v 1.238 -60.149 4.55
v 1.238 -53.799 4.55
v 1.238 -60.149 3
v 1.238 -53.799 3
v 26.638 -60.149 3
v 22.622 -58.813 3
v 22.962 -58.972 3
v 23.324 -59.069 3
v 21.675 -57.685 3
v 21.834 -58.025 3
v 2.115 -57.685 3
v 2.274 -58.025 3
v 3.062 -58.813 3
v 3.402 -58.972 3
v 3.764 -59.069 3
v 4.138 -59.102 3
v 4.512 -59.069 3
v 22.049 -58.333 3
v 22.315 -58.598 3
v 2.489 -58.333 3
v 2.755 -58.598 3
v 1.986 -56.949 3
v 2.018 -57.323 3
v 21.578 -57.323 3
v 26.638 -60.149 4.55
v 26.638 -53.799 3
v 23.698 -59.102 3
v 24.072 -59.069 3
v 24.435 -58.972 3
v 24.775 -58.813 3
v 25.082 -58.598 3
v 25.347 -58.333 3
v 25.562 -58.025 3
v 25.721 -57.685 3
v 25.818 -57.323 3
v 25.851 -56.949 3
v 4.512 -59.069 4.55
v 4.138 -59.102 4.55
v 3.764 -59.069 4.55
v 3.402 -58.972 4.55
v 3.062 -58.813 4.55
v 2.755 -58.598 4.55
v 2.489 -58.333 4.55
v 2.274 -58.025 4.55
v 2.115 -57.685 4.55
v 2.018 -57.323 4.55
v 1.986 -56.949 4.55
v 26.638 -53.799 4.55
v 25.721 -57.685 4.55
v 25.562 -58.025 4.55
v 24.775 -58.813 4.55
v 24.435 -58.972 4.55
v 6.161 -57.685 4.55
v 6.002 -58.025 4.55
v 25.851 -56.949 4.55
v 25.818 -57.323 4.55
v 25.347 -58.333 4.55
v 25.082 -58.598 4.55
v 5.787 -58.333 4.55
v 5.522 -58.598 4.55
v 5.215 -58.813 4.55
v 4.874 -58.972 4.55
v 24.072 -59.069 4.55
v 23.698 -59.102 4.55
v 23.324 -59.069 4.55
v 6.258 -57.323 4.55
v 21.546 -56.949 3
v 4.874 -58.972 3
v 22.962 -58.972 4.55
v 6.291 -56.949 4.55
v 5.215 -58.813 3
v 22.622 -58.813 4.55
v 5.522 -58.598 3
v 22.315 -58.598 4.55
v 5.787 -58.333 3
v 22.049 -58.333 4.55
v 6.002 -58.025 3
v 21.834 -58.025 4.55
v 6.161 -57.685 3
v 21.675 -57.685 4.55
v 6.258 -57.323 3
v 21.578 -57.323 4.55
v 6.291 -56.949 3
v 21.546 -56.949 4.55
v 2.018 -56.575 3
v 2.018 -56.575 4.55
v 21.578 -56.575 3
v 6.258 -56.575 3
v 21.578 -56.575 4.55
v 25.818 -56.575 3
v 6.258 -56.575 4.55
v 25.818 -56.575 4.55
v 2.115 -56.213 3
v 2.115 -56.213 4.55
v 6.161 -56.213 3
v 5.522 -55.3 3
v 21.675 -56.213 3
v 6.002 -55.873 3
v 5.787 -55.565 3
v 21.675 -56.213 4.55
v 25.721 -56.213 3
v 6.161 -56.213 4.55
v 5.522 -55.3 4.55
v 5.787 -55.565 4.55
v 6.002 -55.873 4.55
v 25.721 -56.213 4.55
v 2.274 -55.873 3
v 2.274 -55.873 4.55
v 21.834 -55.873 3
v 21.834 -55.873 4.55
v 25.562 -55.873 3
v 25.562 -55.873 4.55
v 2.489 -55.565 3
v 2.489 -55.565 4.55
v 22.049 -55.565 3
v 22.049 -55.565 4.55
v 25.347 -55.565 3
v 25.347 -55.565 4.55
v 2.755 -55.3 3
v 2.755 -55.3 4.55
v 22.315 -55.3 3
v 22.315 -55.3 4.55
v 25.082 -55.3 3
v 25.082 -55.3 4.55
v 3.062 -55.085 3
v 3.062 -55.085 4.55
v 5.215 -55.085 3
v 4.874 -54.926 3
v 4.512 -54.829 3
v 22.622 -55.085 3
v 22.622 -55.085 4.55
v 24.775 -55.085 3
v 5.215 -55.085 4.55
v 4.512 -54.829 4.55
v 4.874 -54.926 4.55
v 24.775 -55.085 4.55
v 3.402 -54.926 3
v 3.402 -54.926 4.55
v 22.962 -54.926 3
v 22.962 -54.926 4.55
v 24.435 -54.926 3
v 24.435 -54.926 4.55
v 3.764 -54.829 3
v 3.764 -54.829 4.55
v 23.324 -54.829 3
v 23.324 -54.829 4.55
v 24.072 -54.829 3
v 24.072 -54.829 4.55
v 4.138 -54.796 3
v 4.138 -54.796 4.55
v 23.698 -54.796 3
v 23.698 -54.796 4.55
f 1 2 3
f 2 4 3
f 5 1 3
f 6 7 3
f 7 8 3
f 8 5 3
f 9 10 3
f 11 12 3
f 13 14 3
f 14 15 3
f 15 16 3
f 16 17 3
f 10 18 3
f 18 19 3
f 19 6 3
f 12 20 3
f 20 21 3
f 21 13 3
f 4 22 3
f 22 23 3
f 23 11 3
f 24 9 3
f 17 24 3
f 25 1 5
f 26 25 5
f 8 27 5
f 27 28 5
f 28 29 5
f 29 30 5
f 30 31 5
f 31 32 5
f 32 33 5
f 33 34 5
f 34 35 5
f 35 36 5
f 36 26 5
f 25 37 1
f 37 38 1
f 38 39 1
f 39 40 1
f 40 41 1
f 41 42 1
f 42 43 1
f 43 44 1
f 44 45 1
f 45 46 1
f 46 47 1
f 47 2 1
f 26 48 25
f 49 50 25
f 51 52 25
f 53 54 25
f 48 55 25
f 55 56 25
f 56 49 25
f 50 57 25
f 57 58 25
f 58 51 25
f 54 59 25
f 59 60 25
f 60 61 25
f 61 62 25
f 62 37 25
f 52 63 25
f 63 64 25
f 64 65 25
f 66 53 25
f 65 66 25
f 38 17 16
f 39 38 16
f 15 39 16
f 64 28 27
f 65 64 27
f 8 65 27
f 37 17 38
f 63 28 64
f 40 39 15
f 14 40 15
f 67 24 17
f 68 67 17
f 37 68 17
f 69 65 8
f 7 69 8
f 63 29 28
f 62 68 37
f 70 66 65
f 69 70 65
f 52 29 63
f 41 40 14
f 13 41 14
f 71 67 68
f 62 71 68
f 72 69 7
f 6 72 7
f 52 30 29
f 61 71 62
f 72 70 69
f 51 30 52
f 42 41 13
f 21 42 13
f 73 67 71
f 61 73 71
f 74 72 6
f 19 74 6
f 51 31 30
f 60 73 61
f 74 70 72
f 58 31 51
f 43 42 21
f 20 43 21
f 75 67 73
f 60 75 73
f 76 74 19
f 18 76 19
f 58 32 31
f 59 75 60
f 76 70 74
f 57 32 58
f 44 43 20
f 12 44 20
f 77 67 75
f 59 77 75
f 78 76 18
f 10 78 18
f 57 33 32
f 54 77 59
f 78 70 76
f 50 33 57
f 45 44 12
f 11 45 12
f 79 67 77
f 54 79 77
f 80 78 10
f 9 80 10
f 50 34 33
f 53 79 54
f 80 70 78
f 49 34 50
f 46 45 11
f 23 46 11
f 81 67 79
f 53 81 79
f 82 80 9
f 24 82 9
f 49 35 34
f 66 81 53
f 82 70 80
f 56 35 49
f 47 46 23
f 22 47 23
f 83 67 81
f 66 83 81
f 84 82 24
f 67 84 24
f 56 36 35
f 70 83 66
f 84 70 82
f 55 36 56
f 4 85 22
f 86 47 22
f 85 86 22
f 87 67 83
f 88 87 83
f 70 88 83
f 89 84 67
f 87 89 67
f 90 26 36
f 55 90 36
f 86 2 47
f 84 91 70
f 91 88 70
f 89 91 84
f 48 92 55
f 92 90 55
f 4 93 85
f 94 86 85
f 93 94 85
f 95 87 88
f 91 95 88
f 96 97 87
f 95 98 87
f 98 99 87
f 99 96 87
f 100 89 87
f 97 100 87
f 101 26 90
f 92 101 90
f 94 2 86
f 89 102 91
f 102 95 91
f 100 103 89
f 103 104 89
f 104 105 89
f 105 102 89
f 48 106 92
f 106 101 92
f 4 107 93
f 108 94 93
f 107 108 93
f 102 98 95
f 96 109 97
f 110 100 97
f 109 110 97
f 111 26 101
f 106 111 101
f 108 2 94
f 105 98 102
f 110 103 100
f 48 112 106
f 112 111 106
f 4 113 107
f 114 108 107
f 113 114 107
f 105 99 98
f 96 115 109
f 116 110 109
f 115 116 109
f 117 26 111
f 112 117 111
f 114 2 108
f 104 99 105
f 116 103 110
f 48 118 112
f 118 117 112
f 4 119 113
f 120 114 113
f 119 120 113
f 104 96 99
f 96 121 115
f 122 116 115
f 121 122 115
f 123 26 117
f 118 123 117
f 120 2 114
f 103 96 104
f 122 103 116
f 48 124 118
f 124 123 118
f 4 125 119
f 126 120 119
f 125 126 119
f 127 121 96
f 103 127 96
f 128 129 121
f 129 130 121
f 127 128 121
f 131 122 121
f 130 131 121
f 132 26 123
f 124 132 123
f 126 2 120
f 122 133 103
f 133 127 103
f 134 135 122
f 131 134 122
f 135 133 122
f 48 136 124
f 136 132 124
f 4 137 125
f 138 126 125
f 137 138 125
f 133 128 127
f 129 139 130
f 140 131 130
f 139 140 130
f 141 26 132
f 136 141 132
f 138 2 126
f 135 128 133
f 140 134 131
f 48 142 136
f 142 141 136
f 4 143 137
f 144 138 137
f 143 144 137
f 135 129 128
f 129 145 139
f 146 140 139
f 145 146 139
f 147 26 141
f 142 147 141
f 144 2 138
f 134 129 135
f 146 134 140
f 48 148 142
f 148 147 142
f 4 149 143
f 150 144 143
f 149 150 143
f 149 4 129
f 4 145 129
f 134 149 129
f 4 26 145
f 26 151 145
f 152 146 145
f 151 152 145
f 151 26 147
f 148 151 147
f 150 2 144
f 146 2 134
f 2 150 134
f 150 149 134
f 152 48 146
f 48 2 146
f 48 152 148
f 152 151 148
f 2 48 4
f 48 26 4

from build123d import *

# Parameters (mm, degrees)
ESQUISSE2_W        = 25.4
ESQUISSE2_H        = 6.35
BOSS_EXTRU_1_DEPTH = 1.55
D_GAGEMENT_61_D    = 4.3053


with BuildPart() as part:
    # Esquisse2 → Boss.-Extru.1 (new body)
    with BuildSketch(Plane.XY.offset(3)):
        with Locations((13.938249305, -56.974105441)):
            Rectangle(ESQUISSE2_W, ESQUISSE2_H)
    extrude(amount=BOSS_EXTRU_1_DEPTH)

    # Dégagement #61 (through all)
    with Locations(Plane(origin=(0, 0, 3), x_dir=(-1, 0, 0), z_dir=(0, 0, -1))):
        with Locations((-4.138249305, -56.949105441), (-23.698249305, -56.949105441)):
            Hole(D_GAGEMENT_61_D / 2)


solid = part.part
